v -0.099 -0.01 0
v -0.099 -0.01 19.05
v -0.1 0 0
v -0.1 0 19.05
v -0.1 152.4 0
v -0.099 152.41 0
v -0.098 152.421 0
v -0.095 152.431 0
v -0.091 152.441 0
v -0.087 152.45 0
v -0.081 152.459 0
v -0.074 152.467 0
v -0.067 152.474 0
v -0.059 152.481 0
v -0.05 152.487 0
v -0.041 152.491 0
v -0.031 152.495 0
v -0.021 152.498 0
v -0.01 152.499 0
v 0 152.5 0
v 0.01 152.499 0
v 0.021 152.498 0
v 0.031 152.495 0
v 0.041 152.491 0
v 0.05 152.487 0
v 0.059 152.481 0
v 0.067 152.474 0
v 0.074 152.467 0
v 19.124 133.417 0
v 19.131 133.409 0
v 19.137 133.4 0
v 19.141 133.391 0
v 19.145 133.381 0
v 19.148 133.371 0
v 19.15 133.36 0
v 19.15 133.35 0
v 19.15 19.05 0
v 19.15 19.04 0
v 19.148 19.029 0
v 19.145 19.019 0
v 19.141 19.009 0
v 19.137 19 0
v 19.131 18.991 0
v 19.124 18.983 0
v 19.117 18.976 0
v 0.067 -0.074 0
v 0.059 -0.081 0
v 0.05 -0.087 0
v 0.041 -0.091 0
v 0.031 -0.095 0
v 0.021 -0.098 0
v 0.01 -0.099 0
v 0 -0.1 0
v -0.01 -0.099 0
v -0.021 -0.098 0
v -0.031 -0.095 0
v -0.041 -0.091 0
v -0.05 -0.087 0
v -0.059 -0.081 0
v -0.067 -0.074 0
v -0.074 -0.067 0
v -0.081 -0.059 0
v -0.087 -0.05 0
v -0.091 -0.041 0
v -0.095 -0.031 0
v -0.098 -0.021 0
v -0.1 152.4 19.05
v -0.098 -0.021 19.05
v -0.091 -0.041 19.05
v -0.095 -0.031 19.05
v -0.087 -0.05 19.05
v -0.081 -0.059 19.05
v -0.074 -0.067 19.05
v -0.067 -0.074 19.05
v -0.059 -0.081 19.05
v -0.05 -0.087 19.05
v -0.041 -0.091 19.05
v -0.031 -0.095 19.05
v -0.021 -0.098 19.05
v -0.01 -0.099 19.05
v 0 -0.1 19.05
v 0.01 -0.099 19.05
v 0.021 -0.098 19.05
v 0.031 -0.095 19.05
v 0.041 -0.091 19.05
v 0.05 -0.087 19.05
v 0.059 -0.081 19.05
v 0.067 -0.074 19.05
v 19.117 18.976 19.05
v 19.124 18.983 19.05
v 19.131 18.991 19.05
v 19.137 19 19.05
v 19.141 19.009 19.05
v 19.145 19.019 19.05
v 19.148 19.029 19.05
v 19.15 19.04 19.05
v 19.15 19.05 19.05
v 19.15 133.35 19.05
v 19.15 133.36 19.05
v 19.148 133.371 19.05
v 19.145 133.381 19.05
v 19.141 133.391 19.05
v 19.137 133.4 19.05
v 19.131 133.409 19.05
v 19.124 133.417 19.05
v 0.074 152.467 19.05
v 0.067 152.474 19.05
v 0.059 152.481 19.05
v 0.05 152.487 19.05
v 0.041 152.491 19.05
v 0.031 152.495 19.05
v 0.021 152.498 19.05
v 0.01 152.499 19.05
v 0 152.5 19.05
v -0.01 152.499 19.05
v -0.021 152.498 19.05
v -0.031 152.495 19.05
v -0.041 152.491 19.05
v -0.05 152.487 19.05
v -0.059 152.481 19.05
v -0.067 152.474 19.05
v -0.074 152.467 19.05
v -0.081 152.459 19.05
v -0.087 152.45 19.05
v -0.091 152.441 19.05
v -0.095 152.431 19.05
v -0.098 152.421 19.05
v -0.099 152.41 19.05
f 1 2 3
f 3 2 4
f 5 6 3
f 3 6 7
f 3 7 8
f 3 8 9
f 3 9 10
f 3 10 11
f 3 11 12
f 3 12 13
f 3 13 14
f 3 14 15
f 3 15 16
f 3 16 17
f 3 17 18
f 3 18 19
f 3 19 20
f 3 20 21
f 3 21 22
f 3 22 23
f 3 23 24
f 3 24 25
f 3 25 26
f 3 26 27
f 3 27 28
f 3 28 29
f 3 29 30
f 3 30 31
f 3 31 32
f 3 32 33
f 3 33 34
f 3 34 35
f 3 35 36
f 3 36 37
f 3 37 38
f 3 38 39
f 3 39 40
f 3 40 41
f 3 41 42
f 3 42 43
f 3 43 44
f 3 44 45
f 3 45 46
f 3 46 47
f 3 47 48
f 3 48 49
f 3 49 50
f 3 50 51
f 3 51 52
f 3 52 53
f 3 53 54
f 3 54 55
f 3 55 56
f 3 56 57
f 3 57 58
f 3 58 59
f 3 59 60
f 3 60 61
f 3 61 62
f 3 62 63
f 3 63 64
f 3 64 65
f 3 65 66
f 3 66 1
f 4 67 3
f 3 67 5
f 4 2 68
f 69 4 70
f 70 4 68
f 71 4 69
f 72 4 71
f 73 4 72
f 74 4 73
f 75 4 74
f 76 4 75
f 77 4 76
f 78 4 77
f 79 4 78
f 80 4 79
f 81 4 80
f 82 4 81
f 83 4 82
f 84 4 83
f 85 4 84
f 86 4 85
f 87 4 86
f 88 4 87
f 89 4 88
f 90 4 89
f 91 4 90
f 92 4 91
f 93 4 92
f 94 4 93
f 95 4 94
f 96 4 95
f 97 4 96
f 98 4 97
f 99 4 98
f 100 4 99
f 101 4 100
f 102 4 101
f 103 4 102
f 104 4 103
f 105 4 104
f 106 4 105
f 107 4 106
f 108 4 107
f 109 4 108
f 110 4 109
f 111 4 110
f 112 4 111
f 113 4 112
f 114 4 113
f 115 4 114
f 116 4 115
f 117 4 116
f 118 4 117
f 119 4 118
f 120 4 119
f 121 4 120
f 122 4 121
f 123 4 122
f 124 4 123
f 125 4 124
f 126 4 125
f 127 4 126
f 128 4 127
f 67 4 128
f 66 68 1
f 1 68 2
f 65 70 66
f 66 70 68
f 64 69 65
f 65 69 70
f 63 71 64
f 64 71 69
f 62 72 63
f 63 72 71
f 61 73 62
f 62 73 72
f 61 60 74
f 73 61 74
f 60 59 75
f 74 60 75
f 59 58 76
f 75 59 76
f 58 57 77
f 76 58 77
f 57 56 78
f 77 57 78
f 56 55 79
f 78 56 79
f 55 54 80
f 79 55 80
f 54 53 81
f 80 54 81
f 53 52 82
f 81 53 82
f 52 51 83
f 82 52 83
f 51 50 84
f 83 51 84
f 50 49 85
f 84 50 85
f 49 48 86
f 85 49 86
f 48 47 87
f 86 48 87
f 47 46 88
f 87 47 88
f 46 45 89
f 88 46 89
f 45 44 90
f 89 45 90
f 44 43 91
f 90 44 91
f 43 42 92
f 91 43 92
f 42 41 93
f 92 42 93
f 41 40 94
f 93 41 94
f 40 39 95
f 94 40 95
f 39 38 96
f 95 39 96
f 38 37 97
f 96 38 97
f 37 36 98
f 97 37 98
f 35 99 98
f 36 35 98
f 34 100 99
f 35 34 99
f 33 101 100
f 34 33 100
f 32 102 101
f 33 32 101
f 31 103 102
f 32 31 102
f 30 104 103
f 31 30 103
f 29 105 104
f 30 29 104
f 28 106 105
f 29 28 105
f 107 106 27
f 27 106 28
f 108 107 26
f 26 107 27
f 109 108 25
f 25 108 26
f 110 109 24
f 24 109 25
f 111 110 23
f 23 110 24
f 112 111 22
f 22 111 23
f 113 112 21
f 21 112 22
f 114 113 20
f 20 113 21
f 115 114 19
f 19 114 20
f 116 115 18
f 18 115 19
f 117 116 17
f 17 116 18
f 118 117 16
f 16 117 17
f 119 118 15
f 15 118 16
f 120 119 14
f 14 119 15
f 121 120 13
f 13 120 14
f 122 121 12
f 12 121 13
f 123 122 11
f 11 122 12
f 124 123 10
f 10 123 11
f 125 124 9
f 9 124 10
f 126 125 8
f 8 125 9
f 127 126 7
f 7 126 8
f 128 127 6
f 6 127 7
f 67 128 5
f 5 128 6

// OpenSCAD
LongWidth = 12 + 7/8;
ShortWidth = 11.25;
Width=.75;

hull()
{
	cylinder(r=.1, h=Width * 25.4 , $fn=60);
	translate([Width * 25.4, Width * 25.4, 0]) cylinder(r=.1, h=Width * 25.4, $fn=60);

	translate([0, ((ShortWidth/2) + (Width/2)) * 25.4, 0]) cylinder(r=.1, h=Width * 25.4, $fn=60);
	translate([Width * 25.4, ((ShortWidth/2) -(Width/2)) * 25.4, 0]) cylinder(r=.1, h=Width * 25.4, $fn=60);
}
